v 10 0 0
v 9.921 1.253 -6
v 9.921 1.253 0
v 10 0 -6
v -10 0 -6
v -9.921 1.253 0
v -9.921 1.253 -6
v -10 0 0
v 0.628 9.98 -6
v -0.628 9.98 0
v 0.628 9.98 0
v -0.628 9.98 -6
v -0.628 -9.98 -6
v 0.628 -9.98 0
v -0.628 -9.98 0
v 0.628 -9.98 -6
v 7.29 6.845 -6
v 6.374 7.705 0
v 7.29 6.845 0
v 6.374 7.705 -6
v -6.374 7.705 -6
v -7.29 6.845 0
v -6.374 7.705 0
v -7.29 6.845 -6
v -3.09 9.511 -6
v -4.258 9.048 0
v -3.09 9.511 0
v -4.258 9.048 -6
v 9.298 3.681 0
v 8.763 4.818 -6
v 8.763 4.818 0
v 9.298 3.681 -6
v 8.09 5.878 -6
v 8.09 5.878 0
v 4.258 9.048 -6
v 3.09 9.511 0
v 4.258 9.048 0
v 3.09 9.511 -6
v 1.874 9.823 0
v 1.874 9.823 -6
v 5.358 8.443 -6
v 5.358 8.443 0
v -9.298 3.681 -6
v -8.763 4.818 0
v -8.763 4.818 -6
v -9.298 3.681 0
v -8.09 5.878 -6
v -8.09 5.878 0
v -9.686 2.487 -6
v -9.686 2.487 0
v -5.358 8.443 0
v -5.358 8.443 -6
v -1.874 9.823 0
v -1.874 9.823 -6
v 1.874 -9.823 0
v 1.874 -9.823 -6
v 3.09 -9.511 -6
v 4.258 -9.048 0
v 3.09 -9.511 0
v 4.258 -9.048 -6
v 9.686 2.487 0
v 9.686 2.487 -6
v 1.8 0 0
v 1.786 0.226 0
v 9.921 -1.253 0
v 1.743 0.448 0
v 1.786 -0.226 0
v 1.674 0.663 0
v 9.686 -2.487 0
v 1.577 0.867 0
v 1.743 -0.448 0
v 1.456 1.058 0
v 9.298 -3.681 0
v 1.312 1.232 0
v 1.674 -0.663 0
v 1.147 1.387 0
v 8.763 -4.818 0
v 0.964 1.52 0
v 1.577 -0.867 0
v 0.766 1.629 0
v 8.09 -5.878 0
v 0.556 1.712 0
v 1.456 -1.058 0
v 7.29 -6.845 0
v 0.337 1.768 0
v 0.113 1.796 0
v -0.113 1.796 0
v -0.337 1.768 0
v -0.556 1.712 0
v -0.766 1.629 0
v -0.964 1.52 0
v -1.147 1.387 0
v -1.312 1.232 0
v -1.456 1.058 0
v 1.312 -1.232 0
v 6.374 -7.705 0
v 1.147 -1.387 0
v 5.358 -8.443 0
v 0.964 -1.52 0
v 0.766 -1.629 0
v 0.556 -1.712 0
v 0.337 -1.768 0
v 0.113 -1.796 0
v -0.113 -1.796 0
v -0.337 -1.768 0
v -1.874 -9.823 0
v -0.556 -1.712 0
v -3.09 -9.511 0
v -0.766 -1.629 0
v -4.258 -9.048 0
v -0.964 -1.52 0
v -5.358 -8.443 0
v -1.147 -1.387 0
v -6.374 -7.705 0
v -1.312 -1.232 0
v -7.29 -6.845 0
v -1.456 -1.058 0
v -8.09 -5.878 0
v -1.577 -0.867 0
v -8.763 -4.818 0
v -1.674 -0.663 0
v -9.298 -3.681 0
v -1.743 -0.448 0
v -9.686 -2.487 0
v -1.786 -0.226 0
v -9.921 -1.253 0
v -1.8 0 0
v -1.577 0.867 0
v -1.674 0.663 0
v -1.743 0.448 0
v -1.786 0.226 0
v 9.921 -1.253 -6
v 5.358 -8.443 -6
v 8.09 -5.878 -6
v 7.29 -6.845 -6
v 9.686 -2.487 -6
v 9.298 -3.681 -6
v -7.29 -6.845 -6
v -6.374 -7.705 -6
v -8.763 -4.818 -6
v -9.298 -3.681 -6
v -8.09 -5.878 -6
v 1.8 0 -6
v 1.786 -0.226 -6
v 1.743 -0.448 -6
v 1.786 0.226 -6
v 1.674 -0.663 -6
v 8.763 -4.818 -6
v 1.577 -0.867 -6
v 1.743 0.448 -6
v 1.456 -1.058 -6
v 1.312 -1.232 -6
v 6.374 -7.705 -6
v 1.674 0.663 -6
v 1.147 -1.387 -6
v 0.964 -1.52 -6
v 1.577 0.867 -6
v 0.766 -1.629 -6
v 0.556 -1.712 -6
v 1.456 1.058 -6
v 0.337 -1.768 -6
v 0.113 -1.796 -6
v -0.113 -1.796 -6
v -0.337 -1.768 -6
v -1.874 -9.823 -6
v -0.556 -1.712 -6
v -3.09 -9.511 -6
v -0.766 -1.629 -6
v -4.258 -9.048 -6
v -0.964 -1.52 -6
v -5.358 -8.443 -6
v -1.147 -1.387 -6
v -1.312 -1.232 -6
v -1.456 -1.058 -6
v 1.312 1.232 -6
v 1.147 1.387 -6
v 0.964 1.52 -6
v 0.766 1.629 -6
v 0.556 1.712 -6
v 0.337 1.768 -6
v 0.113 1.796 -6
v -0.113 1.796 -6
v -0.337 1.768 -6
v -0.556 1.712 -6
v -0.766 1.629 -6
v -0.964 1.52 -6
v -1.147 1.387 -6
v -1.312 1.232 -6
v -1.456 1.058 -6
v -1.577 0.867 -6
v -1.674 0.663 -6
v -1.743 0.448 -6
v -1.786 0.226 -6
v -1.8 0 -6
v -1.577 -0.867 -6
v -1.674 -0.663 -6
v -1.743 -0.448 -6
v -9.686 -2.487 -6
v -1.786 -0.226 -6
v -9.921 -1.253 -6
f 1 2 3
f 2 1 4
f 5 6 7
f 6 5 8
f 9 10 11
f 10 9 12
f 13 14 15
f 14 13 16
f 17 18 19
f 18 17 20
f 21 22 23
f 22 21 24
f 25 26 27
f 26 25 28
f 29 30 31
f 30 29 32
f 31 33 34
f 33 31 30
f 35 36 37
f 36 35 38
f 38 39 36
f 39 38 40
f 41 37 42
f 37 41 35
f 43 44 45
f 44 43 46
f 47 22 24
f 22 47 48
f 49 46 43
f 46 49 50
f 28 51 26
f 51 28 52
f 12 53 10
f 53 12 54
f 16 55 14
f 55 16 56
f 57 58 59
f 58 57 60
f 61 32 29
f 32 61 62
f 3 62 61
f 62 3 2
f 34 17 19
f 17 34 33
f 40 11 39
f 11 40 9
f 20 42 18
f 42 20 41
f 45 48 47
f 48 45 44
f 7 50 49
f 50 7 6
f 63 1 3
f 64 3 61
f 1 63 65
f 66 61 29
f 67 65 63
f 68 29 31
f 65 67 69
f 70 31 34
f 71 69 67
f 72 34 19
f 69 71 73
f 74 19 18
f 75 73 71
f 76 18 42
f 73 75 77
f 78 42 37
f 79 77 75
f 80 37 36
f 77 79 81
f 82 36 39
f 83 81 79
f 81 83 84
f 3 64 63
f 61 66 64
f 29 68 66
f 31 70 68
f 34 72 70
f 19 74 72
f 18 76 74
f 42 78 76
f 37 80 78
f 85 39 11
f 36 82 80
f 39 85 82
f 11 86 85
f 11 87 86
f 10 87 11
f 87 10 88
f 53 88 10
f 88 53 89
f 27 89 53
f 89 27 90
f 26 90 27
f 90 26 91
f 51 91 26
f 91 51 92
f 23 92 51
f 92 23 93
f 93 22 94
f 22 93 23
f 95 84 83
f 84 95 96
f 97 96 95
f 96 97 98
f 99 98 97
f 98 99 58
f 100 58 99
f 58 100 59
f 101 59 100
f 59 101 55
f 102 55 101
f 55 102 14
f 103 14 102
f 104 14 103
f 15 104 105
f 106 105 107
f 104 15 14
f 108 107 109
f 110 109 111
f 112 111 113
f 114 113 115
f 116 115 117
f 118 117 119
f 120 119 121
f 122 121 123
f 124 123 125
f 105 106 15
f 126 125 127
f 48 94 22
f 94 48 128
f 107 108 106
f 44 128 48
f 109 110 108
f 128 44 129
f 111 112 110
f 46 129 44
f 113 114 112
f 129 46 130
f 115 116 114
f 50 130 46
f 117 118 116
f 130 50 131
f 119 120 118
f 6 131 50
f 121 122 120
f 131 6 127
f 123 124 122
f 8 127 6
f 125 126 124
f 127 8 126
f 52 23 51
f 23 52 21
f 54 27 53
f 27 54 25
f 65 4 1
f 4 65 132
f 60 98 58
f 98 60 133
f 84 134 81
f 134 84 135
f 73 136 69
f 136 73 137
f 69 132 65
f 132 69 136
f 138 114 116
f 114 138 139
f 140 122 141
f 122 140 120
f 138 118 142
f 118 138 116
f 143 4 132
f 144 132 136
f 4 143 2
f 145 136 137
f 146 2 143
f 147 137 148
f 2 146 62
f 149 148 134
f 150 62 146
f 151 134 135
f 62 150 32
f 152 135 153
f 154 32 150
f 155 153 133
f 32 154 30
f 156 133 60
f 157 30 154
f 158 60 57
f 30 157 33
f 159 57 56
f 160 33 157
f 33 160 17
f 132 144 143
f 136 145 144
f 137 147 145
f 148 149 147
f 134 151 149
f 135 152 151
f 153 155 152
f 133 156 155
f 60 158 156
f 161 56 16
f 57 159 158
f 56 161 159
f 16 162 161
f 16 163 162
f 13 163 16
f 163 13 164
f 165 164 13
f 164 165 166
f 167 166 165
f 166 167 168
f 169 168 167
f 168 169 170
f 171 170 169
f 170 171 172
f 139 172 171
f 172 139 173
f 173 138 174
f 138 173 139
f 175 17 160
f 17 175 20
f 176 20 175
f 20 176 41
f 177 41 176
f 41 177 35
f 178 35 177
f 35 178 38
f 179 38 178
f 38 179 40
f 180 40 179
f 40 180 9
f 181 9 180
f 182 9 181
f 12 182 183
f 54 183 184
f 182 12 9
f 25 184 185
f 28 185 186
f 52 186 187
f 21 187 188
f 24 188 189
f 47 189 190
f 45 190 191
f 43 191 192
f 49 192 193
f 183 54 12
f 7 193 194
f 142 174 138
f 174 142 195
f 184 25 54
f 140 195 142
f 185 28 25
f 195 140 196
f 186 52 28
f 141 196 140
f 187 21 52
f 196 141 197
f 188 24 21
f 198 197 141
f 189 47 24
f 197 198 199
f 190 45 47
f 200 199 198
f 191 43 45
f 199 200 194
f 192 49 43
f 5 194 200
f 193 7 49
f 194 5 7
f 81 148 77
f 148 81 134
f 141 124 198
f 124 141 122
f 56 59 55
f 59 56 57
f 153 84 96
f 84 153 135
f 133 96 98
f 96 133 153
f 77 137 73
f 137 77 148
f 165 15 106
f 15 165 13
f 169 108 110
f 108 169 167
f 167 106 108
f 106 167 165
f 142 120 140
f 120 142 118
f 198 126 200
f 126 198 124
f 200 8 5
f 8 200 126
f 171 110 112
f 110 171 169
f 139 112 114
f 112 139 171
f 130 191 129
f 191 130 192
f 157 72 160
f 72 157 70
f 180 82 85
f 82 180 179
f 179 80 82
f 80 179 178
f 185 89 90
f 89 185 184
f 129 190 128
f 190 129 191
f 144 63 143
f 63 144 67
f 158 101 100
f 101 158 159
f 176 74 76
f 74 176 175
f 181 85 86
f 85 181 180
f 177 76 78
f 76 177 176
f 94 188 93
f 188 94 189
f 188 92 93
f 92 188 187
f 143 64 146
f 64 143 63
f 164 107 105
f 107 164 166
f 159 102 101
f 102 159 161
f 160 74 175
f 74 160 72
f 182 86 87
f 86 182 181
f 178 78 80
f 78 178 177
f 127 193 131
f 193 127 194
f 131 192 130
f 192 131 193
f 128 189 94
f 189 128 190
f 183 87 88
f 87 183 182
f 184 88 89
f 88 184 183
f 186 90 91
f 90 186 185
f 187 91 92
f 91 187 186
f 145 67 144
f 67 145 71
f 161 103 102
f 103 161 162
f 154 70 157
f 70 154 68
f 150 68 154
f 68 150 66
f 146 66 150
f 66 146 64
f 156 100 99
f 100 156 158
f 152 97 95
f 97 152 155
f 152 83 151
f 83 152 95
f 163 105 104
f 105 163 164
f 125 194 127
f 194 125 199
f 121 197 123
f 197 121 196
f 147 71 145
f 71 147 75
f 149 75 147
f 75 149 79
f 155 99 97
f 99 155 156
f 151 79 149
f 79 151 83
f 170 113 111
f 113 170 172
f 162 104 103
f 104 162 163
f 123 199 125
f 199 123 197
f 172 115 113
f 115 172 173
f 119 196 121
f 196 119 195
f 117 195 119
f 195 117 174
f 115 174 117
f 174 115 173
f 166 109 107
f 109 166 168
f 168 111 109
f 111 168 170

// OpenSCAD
$fn = 50;


difference() {
	union() {
		translate(v = [0, 0, -6.0000000000]) {
			cylinder(h = 6, r = 10.0000000000);
		}
	}
	union() {
		#translate(v = [0, 0, -6]) {
			cylinder(h = 6, r = 1.8000000000);
		}
	}
}
